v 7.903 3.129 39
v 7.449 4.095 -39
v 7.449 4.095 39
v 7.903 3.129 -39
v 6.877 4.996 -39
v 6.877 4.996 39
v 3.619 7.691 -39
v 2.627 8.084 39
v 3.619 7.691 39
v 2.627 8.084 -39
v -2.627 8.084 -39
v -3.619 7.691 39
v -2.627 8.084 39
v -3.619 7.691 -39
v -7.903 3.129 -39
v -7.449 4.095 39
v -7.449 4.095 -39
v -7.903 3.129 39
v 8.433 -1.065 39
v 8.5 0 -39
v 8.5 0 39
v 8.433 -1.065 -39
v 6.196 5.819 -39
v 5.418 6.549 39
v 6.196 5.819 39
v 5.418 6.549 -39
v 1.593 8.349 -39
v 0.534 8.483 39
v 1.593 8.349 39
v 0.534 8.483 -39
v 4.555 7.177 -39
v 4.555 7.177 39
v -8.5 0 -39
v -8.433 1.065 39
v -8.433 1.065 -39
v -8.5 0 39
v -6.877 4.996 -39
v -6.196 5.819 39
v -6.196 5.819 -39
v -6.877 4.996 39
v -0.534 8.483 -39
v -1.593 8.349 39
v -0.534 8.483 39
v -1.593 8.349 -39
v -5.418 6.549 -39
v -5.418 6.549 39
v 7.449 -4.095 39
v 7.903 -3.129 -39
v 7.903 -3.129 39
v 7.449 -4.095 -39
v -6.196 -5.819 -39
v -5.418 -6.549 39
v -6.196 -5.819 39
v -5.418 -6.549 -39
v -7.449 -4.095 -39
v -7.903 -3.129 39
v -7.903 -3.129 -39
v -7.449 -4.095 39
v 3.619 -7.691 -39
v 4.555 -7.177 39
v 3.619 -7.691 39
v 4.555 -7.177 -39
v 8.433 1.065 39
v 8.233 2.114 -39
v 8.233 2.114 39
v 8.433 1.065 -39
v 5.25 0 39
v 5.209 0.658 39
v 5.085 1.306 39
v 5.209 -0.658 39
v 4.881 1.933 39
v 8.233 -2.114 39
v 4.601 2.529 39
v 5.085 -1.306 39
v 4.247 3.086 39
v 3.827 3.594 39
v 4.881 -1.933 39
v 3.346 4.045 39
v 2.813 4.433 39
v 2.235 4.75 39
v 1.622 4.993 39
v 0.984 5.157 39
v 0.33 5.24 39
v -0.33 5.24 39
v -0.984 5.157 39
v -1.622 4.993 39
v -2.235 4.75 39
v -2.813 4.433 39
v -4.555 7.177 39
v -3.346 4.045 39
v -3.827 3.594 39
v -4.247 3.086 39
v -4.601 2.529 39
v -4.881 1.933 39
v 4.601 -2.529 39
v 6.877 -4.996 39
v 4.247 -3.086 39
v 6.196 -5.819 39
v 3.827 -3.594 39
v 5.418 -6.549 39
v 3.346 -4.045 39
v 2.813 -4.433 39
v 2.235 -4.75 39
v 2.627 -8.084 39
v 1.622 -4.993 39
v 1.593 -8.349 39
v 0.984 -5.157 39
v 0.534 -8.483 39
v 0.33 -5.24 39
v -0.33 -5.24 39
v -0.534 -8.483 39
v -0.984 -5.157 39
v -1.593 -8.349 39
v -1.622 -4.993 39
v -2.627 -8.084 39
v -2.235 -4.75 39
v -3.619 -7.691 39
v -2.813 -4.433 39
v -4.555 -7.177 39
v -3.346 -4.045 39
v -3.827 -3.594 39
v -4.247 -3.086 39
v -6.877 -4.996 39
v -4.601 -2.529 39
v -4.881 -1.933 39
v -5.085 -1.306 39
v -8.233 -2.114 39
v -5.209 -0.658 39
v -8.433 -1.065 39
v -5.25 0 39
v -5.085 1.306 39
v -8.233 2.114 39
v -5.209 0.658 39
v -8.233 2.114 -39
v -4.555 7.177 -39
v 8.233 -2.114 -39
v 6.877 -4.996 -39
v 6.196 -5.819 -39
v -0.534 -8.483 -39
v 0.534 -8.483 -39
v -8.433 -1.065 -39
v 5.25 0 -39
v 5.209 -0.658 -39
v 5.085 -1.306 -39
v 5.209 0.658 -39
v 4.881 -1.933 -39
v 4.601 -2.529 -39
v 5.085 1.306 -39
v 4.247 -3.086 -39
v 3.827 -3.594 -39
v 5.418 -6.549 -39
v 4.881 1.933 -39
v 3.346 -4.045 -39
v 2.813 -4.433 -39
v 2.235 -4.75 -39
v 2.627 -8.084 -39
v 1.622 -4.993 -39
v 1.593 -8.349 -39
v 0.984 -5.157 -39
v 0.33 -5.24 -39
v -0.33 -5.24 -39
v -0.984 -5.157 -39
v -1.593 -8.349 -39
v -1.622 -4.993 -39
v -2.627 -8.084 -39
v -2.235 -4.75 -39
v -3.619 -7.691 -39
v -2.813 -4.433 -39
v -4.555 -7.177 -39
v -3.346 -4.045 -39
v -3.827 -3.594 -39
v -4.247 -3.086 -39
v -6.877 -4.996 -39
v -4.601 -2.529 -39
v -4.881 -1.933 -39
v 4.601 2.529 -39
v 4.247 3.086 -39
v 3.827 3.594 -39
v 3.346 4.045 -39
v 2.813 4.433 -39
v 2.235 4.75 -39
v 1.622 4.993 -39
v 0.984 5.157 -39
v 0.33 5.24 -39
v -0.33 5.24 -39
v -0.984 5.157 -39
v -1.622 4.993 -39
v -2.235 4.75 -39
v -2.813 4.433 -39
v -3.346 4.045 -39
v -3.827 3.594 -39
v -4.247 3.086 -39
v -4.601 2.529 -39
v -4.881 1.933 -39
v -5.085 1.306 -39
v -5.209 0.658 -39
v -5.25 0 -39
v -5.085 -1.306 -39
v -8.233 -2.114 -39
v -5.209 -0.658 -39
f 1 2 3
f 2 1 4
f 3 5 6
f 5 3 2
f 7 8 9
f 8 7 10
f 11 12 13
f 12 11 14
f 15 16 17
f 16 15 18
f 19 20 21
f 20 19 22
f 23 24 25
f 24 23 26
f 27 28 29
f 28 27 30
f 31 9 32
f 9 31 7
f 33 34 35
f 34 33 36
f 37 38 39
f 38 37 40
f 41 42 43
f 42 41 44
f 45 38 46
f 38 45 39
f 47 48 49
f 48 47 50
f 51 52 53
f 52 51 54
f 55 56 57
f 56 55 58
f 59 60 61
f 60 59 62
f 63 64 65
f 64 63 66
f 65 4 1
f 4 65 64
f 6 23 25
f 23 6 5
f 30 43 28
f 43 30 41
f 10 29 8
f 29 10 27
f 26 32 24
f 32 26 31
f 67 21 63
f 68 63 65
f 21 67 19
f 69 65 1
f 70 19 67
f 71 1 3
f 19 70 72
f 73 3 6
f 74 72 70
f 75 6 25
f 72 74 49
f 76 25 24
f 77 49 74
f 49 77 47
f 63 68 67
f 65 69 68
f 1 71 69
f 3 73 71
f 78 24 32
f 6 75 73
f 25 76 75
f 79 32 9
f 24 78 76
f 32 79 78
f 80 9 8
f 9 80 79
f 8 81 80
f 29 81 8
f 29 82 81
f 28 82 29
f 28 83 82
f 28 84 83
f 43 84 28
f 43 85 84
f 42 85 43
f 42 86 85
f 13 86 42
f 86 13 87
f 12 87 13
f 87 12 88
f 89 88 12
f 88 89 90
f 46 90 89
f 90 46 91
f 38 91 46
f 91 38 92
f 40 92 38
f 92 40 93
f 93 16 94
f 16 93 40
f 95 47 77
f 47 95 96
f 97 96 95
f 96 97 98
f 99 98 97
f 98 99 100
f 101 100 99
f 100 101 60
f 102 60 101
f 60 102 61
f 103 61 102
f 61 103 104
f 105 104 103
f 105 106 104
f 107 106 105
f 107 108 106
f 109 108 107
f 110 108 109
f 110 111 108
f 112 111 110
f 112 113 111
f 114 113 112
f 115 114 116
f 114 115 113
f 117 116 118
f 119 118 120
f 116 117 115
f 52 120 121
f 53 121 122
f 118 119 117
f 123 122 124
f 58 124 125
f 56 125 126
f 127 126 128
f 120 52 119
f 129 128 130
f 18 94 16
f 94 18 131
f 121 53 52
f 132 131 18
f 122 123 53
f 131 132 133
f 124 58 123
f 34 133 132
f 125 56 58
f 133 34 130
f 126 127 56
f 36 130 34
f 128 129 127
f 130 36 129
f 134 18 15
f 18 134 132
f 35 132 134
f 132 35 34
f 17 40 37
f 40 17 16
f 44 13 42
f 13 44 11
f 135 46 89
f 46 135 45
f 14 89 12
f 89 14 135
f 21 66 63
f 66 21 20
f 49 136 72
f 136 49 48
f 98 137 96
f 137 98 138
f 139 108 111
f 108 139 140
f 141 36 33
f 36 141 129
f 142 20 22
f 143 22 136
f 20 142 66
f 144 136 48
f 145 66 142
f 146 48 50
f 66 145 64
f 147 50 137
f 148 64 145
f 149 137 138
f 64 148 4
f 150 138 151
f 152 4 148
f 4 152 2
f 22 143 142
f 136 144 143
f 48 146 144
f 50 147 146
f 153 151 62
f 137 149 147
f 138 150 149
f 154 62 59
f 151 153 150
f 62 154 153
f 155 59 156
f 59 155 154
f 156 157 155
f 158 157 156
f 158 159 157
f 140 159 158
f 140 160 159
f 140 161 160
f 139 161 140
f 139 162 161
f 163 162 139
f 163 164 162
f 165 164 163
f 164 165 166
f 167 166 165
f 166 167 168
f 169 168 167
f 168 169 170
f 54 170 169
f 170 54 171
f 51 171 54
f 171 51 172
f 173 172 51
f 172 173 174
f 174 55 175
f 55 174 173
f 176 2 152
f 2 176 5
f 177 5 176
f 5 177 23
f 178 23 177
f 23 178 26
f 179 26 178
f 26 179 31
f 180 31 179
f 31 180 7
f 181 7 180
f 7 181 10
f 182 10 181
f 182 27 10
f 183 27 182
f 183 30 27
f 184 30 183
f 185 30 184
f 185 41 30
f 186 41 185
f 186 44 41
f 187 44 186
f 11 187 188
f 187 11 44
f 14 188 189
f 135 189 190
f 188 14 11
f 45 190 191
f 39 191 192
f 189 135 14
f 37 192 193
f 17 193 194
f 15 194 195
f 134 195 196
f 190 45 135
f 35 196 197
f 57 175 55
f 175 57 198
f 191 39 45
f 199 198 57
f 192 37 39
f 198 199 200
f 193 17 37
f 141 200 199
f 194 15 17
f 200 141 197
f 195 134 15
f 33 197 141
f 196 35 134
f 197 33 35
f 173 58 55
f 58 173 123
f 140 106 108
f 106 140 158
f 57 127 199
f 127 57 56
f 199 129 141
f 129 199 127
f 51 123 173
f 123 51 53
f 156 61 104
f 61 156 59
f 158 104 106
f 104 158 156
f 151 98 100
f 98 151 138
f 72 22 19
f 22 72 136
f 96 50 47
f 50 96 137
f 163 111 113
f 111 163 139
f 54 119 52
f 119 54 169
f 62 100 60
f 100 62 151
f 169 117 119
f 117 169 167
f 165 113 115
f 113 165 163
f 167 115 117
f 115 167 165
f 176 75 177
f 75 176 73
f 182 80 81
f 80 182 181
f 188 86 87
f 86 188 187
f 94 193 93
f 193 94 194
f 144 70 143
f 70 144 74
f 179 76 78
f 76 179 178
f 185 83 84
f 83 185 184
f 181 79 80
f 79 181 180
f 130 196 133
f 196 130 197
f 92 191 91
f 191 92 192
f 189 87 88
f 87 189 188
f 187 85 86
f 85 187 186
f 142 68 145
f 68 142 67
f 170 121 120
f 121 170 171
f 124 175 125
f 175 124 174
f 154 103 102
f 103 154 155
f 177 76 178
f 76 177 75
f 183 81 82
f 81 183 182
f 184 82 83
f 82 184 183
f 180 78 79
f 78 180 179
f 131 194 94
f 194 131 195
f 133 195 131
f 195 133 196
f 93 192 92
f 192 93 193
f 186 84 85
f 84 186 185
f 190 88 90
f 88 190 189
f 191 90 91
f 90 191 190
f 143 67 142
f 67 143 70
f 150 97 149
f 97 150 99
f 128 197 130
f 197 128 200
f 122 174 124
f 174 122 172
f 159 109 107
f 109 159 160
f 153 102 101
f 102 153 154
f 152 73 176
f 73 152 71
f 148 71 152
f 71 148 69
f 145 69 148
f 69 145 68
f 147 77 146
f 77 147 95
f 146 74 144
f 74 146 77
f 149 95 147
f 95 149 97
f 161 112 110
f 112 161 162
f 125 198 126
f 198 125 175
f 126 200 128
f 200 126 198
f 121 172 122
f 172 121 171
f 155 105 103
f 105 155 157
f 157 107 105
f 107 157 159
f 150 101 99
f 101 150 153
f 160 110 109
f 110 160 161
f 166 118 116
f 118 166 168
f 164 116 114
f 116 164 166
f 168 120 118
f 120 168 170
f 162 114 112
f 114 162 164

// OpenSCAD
$fn = 50;


difference() {
	union() {
		translate(v = [0, 0, -39.0000000000]) {
			cylinder(h = 78, r = 8.5000000000);
		}
	}
	union() {
		translate(v = [0, 0, -100.0000000000]) {
			cylinder(h = 200, r = 5.2500000000);
		}
	}
}
